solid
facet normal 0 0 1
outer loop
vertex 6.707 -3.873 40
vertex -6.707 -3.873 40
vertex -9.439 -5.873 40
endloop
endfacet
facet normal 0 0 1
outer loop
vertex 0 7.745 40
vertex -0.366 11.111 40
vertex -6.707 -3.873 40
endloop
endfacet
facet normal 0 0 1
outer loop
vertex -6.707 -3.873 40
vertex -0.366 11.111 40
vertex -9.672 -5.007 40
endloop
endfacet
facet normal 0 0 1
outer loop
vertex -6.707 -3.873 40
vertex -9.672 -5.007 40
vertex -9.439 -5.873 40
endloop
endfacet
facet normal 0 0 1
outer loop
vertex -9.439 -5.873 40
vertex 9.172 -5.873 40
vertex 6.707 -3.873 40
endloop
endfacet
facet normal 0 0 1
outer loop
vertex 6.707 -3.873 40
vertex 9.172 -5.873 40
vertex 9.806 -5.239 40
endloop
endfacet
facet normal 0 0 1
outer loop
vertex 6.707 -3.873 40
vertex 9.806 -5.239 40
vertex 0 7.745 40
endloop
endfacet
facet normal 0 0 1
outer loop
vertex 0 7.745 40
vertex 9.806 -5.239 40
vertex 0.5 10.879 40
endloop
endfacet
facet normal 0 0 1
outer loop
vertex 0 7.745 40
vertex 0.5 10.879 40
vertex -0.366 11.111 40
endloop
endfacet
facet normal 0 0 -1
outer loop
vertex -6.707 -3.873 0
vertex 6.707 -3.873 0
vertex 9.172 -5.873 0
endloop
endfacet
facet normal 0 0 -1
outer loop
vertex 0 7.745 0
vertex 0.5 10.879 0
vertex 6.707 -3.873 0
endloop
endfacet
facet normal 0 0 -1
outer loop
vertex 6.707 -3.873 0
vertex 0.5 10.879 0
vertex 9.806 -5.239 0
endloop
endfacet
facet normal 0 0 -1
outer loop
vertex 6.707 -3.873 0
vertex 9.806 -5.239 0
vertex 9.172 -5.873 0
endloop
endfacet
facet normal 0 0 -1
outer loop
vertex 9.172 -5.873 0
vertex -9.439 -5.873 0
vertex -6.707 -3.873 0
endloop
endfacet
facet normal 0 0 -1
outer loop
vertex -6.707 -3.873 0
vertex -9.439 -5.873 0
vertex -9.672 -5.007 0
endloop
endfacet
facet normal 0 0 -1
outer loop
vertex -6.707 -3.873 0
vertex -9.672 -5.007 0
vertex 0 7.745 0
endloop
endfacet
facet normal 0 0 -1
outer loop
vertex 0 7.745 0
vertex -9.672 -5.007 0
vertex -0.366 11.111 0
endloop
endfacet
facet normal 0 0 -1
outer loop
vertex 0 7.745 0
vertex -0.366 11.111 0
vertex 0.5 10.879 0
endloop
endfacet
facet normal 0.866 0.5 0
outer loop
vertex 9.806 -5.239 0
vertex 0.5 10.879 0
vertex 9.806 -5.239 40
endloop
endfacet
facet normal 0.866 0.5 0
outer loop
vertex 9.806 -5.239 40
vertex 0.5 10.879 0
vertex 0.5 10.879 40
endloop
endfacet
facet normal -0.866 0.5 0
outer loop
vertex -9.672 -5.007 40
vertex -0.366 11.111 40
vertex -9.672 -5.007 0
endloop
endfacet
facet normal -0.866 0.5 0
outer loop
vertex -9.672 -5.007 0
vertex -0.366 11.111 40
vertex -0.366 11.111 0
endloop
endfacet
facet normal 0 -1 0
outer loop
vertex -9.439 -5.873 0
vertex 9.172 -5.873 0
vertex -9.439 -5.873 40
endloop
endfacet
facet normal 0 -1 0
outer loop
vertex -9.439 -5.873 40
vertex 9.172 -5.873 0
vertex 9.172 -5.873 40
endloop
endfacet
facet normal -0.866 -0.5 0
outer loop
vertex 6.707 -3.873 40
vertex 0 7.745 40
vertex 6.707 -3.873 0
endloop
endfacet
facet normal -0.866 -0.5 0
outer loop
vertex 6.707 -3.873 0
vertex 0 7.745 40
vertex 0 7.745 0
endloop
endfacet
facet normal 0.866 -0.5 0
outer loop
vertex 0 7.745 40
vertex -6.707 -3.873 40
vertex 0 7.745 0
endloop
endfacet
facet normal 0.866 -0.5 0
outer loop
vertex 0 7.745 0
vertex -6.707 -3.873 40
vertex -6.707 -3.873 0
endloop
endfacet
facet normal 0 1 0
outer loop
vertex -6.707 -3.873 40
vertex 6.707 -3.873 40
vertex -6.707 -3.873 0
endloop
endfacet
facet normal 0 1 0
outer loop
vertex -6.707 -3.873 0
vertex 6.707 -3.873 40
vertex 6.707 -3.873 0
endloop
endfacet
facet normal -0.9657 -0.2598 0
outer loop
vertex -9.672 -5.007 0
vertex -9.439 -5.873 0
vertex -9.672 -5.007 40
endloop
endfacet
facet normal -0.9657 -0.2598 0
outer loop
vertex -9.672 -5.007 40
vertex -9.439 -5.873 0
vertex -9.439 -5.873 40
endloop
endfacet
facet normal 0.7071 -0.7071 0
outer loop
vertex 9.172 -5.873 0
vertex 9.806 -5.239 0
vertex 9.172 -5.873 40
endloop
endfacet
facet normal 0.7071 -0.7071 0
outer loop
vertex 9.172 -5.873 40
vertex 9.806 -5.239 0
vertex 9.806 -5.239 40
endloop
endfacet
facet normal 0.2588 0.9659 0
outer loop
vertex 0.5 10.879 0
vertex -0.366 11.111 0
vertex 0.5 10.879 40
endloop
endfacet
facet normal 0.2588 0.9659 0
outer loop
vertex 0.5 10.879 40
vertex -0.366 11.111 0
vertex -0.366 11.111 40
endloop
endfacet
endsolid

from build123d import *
from OCP.BRepFilletAPI import BRepFilletAPI_MakeChamfer

# Parameters (mm, degrees)
BOSS_EXTRUDE1_DEPTH = 40
CHAMFER1_SIZE       = 1
CHAMFER1_SIZE2      = 0.732050808


with BuildPart() as part:
    # Sketch1 → Boss-Extrude1 (new body)
    with BuildSketch(Plane.XY):
        Polygon((0, 11.745081595), (-10.171539031, -5.872540798), (10.171539031, -5.872540798), align=None)
        Polygon((0, 7.745081595), (-6.707437416, -3.872540798), (6.707437416, -3.872540798), align=None, mode=Mode.SUBTRACT)
    extrude(amount=BOSS_EXTRUDE1_DEPTH)

    # Chamfer1: one chamfer whose edges measure the first distance from different faces: ONE call of the kernel's chamfer builder (chamfer() names one face for all edges)
    chamfer1_edges_1 = [part.edges().sort_by_distance(p)[0] for p in [
        (10.171539031, -5.872540798, 20),
    ]]
    chamfer1_side_1 = [part.faces().sort_by_distance(p)[0] for p in [
        (0, -5.872540798, 20),
    ]]
    chamfer1_edges_2 = [part.edges().sort_by_distance(p)[0] for p in [
        (-10.171539031, -5.872540798, 20),
    ]]
    chamfer1_side_2 = [part.faces().sort_by_distance(p)[0] for p in [
        (-5.085769515, 2.936270399, 20),
    ]]
    chamfer1_edges_3 = [part.edges().sort_by_distance(p)[0] for p in [
        (0, 11.745081595, 20),
    ]]
    chamfer1_side_3 = [part.faces().sort_by_distance(p)[0] for p in [
        (5.085769515, 2.936270399, 20),
    ]]
    chamfer1 = BRepFilletAPI_MakeChamfer(part.part.solid().wrapped)
    for e in chamfer1_edges_1:
        chamfer1.Add(CHAMFER1_SIZE, CHAMFER1_SIZE2, e.wrapped, chamfer1_side_1[0].wrapped)  # the first distance lies on this face
    for e in chamfer1_edges_2:
        chamfer1.Add(CHAMFER1_SIZE, CHAMFER1_SIZE2, e.wrapped, chamfer1_side_2[0].wrapped)  # the first distance lies on this face
    for e in chamfer1_edges_3:
        chamfer1.Add(CHAMFER1_SIZE, CHAMFER1_SIZE2, e.wrapped, chamfer1_side_3[0].wrapped)  # the first distance lies on this face
    add(Compound.cast(chamfer1.Shape()), mode=Mode.REPLACE)


solid = part.part
